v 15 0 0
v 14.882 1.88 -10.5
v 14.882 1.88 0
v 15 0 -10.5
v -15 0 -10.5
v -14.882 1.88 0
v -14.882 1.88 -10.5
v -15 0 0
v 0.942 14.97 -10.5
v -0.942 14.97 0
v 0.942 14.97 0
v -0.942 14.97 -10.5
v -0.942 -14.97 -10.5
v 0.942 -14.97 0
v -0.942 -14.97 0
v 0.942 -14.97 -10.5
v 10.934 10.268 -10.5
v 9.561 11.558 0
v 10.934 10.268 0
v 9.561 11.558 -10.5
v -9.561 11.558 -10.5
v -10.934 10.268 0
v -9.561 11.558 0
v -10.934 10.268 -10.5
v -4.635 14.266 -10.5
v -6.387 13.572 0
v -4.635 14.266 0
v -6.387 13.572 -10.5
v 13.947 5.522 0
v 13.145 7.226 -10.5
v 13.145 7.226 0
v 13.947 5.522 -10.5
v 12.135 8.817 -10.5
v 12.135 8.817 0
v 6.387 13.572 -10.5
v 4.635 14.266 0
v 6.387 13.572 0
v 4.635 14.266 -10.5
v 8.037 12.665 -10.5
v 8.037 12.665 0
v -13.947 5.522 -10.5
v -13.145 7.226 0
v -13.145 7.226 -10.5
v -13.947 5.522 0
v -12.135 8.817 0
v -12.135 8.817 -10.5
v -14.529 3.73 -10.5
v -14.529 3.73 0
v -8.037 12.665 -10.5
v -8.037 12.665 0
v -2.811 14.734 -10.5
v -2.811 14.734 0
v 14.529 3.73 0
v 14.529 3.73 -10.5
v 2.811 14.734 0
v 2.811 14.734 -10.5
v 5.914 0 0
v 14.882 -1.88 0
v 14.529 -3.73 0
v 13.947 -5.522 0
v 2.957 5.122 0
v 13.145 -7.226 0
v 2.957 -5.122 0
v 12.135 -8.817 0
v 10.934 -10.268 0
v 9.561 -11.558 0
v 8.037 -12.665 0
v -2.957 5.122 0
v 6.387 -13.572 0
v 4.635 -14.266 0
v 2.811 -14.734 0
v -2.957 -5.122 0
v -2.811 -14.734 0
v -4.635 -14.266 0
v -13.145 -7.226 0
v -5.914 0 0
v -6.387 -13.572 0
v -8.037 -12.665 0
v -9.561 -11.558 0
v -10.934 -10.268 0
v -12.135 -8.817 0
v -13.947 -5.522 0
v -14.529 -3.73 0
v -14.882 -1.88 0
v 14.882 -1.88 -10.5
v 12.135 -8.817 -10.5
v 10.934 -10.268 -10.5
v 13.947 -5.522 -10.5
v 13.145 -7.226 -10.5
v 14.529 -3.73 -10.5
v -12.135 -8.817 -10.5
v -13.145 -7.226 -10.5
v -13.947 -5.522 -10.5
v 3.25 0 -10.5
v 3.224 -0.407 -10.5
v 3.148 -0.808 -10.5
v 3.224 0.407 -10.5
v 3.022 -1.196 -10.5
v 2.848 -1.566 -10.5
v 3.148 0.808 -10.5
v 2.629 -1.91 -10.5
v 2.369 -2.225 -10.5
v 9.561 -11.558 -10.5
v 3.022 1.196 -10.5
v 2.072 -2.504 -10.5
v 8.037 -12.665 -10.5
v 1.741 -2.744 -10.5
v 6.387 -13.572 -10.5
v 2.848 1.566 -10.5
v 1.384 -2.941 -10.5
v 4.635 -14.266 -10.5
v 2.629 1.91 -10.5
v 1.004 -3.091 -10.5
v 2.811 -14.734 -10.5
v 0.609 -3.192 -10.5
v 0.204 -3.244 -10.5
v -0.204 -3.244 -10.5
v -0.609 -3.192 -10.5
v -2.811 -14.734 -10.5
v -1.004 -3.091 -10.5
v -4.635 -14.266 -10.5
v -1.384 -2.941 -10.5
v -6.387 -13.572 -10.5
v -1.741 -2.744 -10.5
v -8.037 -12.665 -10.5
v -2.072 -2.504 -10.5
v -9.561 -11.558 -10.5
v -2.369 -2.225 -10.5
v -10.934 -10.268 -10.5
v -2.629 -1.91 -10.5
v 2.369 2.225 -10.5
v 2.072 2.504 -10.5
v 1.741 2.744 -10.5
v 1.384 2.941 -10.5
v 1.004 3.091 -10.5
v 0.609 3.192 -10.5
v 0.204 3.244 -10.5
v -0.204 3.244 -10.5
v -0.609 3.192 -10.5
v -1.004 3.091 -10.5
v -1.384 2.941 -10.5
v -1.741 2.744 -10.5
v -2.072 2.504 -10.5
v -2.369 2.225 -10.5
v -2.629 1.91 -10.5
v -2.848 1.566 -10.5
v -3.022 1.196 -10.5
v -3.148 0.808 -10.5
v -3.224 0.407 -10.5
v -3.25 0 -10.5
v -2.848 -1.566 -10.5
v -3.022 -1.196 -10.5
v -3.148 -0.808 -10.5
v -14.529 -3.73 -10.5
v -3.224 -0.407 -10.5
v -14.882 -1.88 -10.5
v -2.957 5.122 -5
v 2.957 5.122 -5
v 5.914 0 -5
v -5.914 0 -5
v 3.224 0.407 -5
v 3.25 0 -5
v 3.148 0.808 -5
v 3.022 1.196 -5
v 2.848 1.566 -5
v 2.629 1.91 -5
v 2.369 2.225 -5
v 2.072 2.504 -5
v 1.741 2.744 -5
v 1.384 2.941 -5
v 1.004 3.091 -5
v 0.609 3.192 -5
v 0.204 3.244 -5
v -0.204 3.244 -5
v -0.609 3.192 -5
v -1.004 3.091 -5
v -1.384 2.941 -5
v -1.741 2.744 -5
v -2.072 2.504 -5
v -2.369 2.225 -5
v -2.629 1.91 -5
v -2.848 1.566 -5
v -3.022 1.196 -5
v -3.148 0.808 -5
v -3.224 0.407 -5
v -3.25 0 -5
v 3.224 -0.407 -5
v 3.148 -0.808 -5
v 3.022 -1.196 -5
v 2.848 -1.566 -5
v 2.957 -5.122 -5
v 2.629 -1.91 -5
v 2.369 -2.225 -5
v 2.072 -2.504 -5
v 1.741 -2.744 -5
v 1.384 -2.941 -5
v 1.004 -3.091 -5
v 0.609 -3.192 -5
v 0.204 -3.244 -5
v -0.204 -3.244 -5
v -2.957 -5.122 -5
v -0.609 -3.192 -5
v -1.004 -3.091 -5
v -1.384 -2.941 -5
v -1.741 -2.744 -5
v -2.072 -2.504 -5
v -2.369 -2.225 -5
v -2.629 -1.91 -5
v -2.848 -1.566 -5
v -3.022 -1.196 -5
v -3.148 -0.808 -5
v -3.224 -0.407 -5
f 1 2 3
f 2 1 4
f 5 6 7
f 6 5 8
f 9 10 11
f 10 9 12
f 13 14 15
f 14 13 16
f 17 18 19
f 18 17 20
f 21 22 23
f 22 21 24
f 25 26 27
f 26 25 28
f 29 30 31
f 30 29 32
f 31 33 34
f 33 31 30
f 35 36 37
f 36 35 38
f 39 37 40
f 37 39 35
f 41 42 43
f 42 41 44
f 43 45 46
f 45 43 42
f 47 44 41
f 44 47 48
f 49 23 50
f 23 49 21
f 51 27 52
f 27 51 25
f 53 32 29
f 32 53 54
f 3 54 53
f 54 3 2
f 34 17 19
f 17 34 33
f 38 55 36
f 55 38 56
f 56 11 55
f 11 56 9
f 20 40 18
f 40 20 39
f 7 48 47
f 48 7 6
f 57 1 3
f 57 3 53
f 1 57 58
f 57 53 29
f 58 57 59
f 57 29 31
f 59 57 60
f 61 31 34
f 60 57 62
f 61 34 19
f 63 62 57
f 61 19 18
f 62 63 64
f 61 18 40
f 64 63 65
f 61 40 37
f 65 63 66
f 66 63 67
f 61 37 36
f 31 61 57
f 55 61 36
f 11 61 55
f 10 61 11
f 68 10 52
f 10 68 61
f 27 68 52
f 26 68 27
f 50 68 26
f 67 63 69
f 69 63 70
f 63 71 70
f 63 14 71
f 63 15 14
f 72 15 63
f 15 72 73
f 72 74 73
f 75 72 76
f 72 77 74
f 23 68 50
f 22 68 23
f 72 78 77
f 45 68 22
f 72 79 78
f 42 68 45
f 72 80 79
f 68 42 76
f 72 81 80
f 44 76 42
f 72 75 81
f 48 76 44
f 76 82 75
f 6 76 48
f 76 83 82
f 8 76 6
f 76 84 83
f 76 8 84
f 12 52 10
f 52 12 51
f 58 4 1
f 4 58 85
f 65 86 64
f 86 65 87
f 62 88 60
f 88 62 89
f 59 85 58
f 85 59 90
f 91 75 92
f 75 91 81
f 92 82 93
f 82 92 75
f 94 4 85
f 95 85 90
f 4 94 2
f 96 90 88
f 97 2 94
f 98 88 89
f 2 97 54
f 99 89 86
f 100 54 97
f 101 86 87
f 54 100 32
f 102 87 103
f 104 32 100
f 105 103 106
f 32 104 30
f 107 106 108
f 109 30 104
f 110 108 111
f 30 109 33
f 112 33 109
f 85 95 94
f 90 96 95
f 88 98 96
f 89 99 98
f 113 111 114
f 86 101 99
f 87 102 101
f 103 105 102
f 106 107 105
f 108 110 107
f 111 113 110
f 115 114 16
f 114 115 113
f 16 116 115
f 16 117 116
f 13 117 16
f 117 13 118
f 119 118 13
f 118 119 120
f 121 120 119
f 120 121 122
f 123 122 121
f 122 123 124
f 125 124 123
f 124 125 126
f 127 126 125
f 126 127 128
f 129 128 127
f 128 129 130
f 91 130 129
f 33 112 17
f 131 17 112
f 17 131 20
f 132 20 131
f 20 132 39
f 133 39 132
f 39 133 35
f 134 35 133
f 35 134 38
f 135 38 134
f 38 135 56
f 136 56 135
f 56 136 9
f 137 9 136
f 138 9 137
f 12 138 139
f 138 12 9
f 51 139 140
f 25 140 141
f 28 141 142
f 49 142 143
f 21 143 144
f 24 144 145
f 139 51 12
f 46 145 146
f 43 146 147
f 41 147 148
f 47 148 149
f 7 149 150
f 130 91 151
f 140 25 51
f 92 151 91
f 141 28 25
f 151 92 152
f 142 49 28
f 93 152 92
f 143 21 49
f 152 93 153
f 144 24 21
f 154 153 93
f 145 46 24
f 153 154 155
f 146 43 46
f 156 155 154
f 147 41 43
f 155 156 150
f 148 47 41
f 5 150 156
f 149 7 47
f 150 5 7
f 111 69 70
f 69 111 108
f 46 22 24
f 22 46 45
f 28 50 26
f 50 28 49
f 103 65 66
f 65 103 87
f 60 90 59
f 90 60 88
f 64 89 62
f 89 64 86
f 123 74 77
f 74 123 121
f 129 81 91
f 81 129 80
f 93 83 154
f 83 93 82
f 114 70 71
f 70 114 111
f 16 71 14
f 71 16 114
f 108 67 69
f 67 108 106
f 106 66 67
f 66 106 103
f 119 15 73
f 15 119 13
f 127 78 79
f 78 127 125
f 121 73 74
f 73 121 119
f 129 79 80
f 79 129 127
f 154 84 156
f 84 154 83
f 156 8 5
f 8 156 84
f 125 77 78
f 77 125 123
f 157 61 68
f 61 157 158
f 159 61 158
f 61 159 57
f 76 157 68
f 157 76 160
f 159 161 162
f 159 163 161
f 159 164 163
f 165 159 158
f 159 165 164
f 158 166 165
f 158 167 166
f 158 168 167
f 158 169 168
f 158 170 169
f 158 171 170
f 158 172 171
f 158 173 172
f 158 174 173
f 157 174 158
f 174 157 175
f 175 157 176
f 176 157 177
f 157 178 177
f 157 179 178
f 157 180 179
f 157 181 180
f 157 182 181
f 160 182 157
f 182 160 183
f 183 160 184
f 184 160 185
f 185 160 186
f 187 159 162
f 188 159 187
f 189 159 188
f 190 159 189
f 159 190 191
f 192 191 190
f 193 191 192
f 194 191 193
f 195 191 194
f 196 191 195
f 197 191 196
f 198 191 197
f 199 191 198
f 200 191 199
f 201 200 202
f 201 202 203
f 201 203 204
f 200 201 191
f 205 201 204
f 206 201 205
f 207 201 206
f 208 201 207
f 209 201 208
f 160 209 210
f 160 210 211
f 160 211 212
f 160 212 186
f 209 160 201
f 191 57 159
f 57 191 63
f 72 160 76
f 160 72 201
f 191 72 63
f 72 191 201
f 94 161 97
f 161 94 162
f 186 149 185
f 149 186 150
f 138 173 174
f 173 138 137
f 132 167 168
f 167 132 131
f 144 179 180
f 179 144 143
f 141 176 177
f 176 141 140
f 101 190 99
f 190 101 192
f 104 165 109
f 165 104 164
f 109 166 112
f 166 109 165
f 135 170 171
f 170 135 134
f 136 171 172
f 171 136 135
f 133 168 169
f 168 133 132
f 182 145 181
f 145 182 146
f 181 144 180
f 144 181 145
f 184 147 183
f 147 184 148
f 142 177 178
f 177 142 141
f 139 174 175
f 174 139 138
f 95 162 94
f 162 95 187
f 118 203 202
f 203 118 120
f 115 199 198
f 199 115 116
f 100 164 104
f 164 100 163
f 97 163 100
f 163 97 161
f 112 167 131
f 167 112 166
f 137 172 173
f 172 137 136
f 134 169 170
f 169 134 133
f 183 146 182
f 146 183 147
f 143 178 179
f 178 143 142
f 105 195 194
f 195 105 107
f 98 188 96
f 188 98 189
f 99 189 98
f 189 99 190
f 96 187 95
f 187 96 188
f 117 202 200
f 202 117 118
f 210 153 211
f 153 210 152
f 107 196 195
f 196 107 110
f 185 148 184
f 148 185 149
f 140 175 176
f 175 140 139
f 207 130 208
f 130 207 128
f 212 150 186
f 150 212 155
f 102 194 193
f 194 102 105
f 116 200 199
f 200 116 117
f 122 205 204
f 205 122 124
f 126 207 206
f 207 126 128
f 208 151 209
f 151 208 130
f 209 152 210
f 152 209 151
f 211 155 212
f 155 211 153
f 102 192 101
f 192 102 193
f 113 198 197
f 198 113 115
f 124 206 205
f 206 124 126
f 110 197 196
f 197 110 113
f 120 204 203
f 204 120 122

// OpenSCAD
$fn = 50;


difference() {
	union() {
		translate(v = [0, 0, -10.5000000000]) {
			cylinder(h = 10.5000000000, r = 15.0000000000);
		}
		translate(v = [0, 0, -9.0000000000]) {
			cylinder(h = 9, r = 2.8750000000);
		}
	}
	union() {
		translate(v = [0, 0, 0]) {
			rotate(a = [0, 0, 0]) {
				difference() {
					union() {
						translate(v = [0, 0, -5]) {
							linear_extrude(height = 5) {
								polygon(points = [[5.9142500000, 0.0000000000], [2.9571250000, 5.1218907443], [-2.9571250000, 5.1218907443], [-5.9142500000, 0.0000000000], [-2.9571250000, -5.1218907443], [2.9571250000, -5.1218907443]]);
							}
						}
					}
					union();
				}
			}
		}
		#translate(v = [0, 0, -100.0000000000]) {
			cylinder(h = 200, r = 3.2500000000);
		}
	}
}
